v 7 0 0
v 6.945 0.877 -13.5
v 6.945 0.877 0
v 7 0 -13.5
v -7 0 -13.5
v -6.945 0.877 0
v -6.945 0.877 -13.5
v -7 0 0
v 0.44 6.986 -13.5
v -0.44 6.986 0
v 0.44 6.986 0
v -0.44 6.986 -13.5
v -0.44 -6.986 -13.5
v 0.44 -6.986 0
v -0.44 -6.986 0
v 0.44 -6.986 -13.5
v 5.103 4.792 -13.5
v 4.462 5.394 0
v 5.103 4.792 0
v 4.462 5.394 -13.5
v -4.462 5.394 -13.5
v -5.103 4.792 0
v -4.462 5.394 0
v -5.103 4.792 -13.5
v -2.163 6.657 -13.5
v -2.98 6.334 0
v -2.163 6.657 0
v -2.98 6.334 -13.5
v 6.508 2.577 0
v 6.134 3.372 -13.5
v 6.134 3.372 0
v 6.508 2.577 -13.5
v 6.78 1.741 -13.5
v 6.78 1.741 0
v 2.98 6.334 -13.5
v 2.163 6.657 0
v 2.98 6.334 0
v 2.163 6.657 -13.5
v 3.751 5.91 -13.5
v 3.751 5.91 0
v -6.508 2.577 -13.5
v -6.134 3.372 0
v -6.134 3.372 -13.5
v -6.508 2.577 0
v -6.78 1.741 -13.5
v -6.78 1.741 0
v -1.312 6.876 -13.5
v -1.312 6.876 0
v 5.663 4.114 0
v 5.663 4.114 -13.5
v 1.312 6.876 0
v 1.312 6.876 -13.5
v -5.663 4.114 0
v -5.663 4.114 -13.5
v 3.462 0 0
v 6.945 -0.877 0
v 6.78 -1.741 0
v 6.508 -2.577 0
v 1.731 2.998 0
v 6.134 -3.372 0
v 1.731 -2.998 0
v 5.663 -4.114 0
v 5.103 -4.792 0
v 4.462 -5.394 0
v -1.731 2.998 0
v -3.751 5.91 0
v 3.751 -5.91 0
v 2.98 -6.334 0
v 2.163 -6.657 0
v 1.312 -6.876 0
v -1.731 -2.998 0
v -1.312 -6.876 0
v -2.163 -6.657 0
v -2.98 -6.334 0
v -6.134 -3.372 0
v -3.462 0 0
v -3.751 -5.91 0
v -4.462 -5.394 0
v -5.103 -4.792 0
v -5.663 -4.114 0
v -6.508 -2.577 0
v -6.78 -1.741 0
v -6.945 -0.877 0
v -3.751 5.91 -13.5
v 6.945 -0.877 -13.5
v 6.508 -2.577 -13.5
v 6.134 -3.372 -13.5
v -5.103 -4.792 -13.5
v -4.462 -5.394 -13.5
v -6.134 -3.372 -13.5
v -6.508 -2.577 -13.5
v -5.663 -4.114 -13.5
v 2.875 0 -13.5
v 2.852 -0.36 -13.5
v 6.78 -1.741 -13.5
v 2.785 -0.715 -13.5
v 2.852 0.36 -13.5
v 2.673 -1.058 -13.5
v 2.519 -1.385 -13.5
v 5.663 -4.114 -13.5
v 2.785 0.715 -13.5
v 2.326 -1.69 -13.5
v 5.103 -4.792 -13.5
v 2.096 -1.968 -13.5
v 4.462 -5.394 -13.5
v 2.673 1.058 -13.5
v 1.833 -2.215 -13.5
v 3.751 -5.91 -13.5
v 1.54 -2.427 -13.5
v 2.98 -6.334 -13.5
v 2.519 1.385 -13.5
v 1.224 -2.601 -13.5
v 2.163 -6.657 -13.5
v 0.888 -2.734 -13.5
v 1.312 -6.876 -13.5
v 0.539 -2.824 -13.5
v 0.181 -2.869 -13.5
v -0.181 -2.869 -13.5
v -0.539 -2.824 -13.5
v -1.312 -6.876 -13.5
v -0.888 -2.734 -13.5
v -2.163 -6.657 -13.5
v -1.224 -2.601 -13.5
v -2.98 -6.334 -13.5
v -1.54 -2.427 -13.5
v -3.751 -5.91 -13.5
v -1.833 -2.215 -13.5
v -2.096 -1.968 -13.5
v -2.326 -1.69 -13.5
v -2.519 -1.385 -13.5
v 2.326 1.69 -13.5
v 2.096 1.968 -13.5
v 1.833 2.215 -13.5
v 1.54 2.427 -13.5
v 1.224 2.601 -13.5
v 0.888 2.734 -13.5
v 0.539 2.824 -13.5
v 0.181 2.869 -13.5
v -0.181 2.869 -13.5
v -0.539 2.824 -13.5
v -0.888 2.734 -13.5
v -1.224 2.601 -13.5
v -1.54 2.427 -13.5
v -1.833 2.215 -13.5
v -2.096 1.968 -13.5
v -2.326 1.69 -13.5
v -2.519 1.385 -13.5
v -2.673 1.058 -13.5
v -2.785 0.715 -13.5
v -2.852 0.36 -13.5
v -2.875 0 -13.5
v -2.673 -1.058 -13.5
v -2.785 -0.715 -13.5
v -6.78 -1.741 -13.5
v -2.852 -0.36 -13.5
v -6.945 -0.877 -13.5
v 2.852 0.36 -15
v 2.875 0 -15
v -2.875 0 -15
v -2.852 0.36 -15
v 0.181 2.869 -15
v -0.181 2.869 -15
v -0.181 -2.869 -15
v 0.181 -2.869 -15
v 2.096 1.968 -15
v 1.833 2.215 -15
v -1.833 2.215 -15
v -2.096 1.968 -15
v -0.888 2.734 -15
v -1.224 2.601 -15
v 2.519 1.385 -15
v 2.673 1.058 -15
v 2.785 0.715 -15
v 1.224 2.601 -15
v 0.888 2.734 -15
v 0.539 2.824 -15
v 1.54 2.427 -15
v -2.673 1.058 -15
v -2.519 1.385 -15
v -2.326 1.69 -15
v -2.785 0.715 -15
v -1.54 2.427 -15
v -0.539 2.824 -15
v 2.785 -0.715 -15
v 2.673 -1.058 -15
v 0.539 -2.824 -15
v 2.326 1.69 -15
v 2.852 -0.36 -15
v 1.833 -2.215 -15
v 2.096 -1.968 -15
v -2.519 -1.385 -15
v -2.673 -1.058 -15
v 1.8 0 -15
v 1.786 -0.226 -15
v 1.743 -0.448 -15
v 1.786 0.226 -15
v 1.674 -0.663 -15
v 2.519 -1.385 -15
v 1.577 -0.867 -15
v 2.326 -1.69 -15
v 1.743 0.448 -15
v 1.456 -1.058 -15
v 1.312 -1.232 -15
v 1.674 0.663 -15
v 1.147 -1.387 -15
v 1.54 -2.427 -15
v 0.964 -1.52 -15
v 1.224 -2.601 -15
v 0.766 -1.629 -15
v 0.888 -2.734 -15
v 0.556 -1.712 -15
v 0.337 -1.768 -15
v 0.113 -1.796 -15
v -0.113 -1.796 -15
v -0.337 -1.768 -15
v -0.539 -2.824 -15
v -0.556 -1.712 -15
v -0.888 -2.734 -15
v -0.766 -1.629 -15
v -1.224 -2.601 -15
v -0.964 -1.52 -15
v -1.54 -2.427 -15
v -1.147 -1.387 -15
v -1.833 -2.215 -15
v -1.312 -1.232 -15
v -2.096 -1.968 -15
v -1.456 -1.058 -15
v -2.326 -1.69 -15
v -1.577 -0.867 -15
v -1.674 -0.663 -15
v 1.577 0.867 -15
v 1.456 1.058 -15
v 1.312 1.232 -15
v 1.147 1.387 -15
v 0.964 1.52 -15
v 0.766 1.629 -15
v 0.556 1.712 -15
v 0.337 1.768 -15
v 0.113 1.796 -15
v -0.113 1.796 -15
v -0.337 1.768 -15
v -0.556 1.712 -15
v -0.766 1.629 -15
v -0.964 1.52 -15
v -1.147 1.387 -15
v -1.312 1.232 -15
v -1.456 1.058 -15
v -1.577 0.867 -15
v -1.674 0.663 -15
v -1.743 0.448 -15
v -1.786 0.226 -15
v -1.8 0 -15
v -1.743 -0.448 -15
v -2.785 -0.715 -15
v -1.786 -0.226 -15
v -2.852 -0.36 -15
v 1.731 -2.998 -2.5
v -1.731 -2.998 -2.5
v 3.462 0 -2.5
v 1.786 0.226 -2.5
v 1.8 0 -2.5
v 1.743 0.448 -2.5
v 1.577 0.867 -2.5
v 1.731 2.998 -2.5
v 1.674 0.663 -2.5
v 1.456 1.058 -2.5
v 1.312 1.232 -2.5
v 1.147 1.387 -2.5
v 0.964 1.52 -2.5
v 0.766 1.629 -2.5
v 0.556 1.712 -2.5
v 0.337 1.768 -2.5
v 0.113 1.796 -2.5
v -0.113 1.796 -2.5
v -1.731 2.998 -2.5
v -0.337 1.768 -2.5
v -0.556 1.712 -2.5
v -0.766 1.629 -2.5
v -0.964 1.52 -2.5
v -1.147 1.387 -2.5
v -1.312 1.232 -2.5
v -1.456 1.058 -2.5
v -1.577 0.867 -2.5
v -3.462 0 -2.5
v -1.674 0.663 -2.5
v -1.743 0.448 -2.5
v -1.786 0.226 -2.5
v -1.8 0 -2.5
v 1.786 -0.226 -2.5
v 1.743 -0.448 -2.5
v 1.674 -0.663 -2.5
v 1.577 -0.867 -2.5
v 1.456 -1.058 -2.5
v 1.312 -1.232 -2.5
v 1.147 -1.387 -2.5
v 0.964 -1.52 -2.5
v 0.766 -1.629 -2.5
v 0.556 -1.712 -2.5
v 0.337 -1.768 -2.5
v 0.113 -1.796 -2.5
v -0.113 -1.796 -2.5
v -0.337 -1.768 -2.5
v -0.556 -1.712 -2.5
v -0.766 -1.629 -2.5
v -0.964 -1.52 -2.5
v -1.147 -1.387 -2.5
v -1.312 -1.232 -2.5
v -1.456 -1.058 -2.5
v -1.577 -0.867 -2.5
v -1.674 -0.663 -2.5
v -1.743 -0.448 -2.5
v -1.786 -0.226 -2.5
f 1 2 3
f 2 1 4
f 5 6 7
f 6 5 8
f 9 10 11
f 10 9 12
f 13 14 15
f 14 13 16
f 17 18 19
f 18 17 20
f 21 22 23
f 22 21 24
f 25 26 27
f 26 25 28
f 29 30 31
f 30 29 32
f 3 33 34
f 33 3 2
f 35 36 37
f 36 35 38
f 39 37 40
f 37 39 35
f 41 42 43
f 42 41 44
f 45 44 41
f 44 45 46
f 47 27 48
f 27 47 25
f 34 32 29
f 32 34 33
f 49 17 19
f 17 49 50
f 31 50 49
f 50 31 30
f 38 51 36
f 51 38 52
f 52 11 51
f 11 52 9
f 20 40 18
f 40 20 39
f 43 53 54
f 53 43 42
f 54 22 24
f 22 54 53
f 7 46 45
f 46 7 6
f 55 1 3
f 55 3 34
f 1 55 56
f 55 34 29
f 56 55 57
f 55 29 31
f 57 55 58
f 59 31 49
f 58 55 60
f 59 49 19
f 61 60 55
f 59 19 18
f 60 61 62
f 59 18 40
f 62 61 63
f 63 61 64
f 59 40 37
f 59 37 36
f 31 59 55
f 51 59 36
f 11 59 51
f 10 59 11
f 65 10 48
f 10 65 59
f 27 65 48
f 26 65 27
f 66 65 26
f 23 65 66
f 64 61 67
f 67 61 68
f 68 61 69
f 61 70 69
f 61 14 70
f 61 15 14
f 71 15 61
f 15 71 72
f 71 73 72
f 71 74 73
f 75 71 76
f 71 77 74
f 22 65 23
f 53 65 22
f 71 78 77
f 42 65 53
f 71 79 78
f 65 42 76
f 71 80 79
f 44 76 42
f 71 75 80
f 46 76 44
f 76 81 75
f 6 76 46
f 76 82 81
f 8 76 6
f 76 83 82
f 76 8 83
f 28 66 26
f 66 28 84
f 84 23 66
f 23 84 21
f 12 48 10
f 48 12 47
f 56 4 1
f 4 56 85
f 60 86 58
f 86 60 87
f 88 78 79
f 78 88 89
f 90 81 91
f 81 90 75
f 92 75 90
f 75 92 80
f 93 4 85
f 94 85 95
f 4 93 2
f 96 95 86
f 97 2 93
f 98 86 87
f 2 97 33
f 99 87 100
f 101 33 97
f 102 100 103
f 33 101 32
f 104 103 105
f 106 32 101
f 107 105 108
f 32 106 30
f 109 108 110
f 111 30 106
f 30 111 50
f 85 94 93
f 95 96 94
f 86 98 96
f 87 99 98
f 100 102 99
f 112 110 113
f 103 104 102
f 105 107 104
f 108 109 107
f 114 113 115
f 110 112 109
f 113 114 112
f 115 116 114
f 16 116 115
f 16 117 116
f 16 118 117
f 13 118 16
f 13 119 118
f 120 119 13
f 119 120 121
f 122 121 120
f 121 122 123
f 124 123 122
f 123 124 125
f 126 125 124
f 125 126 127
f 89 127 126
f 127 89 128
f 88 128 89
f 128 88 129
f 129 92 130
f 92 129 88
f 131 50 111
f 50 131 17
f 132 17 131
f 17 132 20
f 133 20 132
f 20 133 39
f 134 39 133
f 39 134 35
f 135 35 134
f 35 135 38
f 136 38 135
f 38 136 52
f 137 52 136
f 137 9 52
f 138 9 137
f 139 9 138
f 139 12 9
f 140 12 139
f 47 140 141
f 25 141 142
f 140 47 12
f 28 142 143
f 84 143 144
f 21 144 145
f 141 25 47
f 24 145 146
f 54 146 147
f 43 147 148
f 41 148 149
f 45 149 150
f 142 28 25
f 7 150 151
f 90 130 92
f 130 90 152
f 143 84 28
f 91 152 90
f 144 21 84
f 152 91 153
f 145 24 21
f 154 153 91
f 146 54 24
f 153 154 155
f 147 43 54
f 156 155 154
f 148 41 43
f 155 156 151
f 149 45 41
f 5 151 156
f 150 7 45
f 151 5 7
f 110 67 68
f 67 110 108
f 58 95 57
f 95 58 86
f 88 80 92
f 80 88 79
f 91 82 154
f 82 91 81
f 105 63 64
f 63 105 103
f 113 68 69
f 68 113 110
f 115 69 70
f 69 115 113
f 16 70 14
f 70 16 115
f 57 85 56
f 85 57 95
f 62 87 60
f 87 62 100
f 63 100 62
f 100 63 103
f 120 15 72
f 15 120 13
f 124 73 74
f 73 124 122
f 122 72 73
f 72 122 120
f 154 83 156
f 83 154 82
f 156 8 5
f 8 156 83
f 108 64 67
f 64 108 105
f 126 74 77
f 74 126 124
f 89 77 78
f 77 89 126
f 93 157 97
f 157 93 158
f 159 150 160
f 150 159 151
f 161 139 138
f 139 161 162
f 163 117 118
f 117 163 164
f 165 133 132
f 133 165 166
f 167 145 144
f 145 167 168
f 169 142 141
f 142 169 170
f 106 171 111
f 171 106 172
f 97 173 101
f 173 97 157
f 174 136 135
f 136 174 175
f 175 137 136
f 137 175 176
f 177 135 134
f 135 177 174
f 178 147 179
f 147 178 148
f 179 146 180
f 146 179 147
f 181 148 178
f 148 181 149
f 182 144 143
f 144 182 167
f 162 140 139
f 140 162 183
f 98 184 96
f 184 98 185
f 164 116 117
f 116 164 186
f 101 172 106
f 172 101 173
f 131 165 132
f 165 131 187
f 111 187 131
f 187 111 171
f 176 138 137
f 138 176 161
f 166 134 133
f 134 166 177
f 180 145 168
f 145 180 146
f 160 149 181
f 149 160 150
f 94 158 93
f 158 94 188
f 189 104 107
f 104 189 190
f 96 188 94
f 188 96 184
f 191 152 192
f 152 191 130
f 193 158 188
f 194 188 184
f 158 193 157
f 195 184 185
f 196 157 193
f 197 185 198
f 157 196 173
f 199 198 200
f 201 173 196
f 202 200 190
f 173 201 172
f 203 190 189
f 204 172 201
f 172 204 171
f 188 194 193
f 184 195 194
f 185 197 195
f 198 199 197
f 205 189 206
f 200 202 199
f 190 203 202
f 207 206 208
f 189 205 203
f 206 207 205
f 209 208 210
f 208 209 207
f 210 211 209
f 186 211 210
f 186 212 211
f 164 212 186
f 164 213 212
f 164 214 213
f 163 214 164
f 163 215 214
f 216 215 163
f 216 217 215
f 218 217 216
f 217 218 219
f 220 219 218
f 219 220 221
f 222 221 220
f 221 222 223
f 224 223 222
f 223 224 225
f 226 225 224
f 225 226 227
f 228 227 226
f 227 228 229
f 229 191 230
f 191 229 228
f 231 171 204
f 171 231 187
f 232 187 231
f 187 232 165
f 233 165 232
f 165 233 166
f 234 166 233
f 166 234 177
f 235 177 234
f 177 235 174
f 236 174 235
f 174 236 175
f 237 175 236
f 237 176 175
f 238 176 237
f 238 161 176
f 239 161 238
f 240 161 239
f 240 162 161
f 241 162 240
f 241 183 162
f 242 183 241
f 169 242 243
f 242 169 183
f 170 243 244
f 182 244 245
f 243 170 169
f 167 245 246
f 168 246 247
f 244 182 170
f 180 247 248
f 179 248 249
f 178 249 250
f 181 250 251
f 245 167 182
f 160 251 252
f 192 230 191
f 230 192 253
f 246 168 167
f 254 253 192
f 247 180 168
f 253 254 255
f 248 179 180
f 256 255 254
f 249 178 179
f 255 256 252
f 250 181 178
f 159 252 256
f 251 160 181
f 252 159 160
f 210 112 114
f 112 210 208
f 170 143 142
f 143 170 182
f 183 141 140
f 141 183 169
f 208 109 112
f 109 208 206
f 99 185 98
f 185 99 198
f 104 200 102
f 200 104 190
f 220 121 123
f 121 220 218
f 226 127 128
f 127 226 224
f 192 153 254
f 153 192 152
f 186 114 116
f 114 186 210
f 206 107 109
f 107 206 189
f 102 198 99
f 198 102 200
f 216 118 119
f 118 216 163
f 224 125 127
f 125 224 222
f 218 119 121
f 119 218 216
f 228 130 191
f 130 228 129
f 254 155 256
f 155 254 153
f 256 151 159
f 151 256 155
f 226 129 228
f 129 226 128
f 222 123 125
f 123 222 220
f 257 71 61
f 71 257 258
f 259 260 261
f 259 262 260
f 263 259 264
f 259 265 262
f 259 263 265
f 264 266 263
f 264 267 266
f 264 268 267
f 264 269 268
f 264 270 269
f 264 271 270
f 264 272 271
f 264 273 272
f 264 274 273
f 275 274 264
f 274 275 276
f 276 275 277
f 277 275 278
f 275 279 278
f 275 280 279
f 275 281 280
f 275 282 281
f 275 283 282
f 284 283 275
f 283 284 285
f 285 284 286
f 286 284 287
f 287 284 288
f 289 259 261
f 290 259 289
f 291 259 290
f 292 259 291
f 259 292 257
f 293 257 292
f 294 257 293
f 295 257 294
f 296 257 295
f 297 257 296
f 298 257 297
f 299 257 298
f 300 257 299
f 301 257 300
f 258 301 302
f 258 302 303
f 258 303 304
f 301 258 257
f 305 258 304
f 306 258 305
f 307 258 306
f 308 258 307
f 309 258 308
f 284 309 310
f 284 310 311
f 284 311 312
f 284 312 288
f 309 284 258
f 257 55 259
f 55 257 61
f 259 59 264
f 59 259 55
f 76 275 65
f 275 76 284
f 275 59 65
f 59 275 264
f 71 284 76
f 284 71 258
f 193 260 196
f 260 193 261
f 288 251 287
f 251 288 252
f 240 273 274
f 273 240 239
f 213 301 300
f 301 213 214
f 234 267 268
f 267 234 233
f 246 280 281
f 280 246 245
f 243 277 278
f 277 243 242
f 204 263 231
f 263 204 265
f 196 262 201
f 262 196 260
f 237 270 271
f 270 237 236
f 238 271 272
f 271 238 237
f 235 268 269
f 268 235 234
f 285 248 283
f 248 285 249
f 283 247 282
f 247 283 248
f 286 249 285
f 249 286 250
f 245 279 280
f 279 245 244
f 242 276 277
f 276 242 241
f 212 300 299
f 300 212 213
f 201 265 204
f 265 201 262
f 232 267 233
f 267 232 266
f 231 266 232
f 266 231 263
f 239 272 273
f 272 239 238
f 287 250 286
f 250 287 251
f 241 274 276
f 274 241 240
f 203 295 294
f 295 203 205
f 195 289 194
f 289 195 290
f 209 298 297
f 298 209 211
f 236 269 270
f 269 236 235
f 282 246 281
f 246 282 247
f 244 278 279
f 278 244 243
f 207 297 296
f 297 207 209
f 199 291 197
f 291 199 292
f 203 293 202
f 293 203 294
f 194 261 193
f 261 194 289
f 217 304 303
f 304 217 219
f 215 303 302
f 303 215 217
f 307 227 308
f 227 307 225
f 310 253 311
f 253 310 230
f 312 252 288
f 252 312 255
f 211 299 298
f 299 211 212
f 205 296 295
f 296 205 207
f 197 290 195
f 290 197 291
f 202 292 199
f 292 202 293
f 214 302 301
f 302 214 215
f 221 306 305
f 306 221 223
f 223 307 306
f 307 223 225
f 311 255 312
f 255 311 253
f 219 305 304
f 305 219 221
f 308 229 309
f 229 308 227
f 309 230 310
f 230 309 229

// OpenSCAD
$fn = 50;


difference() {
	union() {
		translate(v = [0, 0, -13.5000000000]) {
			cylinder(h = 13.5000000000, r = 7.0000000000);
		}
		translate(v = [0, 0, -15.0000000000]) {
			cylinder(h = 15, r = 2.8750000000);
		}
	}
	union() {
		translate(v = [0, 0, 0]) {
			rotate(a = [0, 0, 0]) {
				difference() {
					union() {
						translate(v = [0, 0, -2.5000000000]) {
							linear_extrude(height = 2.5000000000) {
								polygon(points = [[3.4620000000, 0.0000000000], [1.7310000000, 2.9981799479], [-1.7310000000, 2.9981799479], [-3.4620000000, 0.0000000000], [-1.7310000000, -2.9981799479], [1.7310000000, -2.9981799479]]);
							}
						}
					}
					union();
				}
			}
		}
		#translate(v = [0, 0, -100.0000000000]) {
			cylinder(h = 200, r = 1.8000000000);
		}
	}
}
